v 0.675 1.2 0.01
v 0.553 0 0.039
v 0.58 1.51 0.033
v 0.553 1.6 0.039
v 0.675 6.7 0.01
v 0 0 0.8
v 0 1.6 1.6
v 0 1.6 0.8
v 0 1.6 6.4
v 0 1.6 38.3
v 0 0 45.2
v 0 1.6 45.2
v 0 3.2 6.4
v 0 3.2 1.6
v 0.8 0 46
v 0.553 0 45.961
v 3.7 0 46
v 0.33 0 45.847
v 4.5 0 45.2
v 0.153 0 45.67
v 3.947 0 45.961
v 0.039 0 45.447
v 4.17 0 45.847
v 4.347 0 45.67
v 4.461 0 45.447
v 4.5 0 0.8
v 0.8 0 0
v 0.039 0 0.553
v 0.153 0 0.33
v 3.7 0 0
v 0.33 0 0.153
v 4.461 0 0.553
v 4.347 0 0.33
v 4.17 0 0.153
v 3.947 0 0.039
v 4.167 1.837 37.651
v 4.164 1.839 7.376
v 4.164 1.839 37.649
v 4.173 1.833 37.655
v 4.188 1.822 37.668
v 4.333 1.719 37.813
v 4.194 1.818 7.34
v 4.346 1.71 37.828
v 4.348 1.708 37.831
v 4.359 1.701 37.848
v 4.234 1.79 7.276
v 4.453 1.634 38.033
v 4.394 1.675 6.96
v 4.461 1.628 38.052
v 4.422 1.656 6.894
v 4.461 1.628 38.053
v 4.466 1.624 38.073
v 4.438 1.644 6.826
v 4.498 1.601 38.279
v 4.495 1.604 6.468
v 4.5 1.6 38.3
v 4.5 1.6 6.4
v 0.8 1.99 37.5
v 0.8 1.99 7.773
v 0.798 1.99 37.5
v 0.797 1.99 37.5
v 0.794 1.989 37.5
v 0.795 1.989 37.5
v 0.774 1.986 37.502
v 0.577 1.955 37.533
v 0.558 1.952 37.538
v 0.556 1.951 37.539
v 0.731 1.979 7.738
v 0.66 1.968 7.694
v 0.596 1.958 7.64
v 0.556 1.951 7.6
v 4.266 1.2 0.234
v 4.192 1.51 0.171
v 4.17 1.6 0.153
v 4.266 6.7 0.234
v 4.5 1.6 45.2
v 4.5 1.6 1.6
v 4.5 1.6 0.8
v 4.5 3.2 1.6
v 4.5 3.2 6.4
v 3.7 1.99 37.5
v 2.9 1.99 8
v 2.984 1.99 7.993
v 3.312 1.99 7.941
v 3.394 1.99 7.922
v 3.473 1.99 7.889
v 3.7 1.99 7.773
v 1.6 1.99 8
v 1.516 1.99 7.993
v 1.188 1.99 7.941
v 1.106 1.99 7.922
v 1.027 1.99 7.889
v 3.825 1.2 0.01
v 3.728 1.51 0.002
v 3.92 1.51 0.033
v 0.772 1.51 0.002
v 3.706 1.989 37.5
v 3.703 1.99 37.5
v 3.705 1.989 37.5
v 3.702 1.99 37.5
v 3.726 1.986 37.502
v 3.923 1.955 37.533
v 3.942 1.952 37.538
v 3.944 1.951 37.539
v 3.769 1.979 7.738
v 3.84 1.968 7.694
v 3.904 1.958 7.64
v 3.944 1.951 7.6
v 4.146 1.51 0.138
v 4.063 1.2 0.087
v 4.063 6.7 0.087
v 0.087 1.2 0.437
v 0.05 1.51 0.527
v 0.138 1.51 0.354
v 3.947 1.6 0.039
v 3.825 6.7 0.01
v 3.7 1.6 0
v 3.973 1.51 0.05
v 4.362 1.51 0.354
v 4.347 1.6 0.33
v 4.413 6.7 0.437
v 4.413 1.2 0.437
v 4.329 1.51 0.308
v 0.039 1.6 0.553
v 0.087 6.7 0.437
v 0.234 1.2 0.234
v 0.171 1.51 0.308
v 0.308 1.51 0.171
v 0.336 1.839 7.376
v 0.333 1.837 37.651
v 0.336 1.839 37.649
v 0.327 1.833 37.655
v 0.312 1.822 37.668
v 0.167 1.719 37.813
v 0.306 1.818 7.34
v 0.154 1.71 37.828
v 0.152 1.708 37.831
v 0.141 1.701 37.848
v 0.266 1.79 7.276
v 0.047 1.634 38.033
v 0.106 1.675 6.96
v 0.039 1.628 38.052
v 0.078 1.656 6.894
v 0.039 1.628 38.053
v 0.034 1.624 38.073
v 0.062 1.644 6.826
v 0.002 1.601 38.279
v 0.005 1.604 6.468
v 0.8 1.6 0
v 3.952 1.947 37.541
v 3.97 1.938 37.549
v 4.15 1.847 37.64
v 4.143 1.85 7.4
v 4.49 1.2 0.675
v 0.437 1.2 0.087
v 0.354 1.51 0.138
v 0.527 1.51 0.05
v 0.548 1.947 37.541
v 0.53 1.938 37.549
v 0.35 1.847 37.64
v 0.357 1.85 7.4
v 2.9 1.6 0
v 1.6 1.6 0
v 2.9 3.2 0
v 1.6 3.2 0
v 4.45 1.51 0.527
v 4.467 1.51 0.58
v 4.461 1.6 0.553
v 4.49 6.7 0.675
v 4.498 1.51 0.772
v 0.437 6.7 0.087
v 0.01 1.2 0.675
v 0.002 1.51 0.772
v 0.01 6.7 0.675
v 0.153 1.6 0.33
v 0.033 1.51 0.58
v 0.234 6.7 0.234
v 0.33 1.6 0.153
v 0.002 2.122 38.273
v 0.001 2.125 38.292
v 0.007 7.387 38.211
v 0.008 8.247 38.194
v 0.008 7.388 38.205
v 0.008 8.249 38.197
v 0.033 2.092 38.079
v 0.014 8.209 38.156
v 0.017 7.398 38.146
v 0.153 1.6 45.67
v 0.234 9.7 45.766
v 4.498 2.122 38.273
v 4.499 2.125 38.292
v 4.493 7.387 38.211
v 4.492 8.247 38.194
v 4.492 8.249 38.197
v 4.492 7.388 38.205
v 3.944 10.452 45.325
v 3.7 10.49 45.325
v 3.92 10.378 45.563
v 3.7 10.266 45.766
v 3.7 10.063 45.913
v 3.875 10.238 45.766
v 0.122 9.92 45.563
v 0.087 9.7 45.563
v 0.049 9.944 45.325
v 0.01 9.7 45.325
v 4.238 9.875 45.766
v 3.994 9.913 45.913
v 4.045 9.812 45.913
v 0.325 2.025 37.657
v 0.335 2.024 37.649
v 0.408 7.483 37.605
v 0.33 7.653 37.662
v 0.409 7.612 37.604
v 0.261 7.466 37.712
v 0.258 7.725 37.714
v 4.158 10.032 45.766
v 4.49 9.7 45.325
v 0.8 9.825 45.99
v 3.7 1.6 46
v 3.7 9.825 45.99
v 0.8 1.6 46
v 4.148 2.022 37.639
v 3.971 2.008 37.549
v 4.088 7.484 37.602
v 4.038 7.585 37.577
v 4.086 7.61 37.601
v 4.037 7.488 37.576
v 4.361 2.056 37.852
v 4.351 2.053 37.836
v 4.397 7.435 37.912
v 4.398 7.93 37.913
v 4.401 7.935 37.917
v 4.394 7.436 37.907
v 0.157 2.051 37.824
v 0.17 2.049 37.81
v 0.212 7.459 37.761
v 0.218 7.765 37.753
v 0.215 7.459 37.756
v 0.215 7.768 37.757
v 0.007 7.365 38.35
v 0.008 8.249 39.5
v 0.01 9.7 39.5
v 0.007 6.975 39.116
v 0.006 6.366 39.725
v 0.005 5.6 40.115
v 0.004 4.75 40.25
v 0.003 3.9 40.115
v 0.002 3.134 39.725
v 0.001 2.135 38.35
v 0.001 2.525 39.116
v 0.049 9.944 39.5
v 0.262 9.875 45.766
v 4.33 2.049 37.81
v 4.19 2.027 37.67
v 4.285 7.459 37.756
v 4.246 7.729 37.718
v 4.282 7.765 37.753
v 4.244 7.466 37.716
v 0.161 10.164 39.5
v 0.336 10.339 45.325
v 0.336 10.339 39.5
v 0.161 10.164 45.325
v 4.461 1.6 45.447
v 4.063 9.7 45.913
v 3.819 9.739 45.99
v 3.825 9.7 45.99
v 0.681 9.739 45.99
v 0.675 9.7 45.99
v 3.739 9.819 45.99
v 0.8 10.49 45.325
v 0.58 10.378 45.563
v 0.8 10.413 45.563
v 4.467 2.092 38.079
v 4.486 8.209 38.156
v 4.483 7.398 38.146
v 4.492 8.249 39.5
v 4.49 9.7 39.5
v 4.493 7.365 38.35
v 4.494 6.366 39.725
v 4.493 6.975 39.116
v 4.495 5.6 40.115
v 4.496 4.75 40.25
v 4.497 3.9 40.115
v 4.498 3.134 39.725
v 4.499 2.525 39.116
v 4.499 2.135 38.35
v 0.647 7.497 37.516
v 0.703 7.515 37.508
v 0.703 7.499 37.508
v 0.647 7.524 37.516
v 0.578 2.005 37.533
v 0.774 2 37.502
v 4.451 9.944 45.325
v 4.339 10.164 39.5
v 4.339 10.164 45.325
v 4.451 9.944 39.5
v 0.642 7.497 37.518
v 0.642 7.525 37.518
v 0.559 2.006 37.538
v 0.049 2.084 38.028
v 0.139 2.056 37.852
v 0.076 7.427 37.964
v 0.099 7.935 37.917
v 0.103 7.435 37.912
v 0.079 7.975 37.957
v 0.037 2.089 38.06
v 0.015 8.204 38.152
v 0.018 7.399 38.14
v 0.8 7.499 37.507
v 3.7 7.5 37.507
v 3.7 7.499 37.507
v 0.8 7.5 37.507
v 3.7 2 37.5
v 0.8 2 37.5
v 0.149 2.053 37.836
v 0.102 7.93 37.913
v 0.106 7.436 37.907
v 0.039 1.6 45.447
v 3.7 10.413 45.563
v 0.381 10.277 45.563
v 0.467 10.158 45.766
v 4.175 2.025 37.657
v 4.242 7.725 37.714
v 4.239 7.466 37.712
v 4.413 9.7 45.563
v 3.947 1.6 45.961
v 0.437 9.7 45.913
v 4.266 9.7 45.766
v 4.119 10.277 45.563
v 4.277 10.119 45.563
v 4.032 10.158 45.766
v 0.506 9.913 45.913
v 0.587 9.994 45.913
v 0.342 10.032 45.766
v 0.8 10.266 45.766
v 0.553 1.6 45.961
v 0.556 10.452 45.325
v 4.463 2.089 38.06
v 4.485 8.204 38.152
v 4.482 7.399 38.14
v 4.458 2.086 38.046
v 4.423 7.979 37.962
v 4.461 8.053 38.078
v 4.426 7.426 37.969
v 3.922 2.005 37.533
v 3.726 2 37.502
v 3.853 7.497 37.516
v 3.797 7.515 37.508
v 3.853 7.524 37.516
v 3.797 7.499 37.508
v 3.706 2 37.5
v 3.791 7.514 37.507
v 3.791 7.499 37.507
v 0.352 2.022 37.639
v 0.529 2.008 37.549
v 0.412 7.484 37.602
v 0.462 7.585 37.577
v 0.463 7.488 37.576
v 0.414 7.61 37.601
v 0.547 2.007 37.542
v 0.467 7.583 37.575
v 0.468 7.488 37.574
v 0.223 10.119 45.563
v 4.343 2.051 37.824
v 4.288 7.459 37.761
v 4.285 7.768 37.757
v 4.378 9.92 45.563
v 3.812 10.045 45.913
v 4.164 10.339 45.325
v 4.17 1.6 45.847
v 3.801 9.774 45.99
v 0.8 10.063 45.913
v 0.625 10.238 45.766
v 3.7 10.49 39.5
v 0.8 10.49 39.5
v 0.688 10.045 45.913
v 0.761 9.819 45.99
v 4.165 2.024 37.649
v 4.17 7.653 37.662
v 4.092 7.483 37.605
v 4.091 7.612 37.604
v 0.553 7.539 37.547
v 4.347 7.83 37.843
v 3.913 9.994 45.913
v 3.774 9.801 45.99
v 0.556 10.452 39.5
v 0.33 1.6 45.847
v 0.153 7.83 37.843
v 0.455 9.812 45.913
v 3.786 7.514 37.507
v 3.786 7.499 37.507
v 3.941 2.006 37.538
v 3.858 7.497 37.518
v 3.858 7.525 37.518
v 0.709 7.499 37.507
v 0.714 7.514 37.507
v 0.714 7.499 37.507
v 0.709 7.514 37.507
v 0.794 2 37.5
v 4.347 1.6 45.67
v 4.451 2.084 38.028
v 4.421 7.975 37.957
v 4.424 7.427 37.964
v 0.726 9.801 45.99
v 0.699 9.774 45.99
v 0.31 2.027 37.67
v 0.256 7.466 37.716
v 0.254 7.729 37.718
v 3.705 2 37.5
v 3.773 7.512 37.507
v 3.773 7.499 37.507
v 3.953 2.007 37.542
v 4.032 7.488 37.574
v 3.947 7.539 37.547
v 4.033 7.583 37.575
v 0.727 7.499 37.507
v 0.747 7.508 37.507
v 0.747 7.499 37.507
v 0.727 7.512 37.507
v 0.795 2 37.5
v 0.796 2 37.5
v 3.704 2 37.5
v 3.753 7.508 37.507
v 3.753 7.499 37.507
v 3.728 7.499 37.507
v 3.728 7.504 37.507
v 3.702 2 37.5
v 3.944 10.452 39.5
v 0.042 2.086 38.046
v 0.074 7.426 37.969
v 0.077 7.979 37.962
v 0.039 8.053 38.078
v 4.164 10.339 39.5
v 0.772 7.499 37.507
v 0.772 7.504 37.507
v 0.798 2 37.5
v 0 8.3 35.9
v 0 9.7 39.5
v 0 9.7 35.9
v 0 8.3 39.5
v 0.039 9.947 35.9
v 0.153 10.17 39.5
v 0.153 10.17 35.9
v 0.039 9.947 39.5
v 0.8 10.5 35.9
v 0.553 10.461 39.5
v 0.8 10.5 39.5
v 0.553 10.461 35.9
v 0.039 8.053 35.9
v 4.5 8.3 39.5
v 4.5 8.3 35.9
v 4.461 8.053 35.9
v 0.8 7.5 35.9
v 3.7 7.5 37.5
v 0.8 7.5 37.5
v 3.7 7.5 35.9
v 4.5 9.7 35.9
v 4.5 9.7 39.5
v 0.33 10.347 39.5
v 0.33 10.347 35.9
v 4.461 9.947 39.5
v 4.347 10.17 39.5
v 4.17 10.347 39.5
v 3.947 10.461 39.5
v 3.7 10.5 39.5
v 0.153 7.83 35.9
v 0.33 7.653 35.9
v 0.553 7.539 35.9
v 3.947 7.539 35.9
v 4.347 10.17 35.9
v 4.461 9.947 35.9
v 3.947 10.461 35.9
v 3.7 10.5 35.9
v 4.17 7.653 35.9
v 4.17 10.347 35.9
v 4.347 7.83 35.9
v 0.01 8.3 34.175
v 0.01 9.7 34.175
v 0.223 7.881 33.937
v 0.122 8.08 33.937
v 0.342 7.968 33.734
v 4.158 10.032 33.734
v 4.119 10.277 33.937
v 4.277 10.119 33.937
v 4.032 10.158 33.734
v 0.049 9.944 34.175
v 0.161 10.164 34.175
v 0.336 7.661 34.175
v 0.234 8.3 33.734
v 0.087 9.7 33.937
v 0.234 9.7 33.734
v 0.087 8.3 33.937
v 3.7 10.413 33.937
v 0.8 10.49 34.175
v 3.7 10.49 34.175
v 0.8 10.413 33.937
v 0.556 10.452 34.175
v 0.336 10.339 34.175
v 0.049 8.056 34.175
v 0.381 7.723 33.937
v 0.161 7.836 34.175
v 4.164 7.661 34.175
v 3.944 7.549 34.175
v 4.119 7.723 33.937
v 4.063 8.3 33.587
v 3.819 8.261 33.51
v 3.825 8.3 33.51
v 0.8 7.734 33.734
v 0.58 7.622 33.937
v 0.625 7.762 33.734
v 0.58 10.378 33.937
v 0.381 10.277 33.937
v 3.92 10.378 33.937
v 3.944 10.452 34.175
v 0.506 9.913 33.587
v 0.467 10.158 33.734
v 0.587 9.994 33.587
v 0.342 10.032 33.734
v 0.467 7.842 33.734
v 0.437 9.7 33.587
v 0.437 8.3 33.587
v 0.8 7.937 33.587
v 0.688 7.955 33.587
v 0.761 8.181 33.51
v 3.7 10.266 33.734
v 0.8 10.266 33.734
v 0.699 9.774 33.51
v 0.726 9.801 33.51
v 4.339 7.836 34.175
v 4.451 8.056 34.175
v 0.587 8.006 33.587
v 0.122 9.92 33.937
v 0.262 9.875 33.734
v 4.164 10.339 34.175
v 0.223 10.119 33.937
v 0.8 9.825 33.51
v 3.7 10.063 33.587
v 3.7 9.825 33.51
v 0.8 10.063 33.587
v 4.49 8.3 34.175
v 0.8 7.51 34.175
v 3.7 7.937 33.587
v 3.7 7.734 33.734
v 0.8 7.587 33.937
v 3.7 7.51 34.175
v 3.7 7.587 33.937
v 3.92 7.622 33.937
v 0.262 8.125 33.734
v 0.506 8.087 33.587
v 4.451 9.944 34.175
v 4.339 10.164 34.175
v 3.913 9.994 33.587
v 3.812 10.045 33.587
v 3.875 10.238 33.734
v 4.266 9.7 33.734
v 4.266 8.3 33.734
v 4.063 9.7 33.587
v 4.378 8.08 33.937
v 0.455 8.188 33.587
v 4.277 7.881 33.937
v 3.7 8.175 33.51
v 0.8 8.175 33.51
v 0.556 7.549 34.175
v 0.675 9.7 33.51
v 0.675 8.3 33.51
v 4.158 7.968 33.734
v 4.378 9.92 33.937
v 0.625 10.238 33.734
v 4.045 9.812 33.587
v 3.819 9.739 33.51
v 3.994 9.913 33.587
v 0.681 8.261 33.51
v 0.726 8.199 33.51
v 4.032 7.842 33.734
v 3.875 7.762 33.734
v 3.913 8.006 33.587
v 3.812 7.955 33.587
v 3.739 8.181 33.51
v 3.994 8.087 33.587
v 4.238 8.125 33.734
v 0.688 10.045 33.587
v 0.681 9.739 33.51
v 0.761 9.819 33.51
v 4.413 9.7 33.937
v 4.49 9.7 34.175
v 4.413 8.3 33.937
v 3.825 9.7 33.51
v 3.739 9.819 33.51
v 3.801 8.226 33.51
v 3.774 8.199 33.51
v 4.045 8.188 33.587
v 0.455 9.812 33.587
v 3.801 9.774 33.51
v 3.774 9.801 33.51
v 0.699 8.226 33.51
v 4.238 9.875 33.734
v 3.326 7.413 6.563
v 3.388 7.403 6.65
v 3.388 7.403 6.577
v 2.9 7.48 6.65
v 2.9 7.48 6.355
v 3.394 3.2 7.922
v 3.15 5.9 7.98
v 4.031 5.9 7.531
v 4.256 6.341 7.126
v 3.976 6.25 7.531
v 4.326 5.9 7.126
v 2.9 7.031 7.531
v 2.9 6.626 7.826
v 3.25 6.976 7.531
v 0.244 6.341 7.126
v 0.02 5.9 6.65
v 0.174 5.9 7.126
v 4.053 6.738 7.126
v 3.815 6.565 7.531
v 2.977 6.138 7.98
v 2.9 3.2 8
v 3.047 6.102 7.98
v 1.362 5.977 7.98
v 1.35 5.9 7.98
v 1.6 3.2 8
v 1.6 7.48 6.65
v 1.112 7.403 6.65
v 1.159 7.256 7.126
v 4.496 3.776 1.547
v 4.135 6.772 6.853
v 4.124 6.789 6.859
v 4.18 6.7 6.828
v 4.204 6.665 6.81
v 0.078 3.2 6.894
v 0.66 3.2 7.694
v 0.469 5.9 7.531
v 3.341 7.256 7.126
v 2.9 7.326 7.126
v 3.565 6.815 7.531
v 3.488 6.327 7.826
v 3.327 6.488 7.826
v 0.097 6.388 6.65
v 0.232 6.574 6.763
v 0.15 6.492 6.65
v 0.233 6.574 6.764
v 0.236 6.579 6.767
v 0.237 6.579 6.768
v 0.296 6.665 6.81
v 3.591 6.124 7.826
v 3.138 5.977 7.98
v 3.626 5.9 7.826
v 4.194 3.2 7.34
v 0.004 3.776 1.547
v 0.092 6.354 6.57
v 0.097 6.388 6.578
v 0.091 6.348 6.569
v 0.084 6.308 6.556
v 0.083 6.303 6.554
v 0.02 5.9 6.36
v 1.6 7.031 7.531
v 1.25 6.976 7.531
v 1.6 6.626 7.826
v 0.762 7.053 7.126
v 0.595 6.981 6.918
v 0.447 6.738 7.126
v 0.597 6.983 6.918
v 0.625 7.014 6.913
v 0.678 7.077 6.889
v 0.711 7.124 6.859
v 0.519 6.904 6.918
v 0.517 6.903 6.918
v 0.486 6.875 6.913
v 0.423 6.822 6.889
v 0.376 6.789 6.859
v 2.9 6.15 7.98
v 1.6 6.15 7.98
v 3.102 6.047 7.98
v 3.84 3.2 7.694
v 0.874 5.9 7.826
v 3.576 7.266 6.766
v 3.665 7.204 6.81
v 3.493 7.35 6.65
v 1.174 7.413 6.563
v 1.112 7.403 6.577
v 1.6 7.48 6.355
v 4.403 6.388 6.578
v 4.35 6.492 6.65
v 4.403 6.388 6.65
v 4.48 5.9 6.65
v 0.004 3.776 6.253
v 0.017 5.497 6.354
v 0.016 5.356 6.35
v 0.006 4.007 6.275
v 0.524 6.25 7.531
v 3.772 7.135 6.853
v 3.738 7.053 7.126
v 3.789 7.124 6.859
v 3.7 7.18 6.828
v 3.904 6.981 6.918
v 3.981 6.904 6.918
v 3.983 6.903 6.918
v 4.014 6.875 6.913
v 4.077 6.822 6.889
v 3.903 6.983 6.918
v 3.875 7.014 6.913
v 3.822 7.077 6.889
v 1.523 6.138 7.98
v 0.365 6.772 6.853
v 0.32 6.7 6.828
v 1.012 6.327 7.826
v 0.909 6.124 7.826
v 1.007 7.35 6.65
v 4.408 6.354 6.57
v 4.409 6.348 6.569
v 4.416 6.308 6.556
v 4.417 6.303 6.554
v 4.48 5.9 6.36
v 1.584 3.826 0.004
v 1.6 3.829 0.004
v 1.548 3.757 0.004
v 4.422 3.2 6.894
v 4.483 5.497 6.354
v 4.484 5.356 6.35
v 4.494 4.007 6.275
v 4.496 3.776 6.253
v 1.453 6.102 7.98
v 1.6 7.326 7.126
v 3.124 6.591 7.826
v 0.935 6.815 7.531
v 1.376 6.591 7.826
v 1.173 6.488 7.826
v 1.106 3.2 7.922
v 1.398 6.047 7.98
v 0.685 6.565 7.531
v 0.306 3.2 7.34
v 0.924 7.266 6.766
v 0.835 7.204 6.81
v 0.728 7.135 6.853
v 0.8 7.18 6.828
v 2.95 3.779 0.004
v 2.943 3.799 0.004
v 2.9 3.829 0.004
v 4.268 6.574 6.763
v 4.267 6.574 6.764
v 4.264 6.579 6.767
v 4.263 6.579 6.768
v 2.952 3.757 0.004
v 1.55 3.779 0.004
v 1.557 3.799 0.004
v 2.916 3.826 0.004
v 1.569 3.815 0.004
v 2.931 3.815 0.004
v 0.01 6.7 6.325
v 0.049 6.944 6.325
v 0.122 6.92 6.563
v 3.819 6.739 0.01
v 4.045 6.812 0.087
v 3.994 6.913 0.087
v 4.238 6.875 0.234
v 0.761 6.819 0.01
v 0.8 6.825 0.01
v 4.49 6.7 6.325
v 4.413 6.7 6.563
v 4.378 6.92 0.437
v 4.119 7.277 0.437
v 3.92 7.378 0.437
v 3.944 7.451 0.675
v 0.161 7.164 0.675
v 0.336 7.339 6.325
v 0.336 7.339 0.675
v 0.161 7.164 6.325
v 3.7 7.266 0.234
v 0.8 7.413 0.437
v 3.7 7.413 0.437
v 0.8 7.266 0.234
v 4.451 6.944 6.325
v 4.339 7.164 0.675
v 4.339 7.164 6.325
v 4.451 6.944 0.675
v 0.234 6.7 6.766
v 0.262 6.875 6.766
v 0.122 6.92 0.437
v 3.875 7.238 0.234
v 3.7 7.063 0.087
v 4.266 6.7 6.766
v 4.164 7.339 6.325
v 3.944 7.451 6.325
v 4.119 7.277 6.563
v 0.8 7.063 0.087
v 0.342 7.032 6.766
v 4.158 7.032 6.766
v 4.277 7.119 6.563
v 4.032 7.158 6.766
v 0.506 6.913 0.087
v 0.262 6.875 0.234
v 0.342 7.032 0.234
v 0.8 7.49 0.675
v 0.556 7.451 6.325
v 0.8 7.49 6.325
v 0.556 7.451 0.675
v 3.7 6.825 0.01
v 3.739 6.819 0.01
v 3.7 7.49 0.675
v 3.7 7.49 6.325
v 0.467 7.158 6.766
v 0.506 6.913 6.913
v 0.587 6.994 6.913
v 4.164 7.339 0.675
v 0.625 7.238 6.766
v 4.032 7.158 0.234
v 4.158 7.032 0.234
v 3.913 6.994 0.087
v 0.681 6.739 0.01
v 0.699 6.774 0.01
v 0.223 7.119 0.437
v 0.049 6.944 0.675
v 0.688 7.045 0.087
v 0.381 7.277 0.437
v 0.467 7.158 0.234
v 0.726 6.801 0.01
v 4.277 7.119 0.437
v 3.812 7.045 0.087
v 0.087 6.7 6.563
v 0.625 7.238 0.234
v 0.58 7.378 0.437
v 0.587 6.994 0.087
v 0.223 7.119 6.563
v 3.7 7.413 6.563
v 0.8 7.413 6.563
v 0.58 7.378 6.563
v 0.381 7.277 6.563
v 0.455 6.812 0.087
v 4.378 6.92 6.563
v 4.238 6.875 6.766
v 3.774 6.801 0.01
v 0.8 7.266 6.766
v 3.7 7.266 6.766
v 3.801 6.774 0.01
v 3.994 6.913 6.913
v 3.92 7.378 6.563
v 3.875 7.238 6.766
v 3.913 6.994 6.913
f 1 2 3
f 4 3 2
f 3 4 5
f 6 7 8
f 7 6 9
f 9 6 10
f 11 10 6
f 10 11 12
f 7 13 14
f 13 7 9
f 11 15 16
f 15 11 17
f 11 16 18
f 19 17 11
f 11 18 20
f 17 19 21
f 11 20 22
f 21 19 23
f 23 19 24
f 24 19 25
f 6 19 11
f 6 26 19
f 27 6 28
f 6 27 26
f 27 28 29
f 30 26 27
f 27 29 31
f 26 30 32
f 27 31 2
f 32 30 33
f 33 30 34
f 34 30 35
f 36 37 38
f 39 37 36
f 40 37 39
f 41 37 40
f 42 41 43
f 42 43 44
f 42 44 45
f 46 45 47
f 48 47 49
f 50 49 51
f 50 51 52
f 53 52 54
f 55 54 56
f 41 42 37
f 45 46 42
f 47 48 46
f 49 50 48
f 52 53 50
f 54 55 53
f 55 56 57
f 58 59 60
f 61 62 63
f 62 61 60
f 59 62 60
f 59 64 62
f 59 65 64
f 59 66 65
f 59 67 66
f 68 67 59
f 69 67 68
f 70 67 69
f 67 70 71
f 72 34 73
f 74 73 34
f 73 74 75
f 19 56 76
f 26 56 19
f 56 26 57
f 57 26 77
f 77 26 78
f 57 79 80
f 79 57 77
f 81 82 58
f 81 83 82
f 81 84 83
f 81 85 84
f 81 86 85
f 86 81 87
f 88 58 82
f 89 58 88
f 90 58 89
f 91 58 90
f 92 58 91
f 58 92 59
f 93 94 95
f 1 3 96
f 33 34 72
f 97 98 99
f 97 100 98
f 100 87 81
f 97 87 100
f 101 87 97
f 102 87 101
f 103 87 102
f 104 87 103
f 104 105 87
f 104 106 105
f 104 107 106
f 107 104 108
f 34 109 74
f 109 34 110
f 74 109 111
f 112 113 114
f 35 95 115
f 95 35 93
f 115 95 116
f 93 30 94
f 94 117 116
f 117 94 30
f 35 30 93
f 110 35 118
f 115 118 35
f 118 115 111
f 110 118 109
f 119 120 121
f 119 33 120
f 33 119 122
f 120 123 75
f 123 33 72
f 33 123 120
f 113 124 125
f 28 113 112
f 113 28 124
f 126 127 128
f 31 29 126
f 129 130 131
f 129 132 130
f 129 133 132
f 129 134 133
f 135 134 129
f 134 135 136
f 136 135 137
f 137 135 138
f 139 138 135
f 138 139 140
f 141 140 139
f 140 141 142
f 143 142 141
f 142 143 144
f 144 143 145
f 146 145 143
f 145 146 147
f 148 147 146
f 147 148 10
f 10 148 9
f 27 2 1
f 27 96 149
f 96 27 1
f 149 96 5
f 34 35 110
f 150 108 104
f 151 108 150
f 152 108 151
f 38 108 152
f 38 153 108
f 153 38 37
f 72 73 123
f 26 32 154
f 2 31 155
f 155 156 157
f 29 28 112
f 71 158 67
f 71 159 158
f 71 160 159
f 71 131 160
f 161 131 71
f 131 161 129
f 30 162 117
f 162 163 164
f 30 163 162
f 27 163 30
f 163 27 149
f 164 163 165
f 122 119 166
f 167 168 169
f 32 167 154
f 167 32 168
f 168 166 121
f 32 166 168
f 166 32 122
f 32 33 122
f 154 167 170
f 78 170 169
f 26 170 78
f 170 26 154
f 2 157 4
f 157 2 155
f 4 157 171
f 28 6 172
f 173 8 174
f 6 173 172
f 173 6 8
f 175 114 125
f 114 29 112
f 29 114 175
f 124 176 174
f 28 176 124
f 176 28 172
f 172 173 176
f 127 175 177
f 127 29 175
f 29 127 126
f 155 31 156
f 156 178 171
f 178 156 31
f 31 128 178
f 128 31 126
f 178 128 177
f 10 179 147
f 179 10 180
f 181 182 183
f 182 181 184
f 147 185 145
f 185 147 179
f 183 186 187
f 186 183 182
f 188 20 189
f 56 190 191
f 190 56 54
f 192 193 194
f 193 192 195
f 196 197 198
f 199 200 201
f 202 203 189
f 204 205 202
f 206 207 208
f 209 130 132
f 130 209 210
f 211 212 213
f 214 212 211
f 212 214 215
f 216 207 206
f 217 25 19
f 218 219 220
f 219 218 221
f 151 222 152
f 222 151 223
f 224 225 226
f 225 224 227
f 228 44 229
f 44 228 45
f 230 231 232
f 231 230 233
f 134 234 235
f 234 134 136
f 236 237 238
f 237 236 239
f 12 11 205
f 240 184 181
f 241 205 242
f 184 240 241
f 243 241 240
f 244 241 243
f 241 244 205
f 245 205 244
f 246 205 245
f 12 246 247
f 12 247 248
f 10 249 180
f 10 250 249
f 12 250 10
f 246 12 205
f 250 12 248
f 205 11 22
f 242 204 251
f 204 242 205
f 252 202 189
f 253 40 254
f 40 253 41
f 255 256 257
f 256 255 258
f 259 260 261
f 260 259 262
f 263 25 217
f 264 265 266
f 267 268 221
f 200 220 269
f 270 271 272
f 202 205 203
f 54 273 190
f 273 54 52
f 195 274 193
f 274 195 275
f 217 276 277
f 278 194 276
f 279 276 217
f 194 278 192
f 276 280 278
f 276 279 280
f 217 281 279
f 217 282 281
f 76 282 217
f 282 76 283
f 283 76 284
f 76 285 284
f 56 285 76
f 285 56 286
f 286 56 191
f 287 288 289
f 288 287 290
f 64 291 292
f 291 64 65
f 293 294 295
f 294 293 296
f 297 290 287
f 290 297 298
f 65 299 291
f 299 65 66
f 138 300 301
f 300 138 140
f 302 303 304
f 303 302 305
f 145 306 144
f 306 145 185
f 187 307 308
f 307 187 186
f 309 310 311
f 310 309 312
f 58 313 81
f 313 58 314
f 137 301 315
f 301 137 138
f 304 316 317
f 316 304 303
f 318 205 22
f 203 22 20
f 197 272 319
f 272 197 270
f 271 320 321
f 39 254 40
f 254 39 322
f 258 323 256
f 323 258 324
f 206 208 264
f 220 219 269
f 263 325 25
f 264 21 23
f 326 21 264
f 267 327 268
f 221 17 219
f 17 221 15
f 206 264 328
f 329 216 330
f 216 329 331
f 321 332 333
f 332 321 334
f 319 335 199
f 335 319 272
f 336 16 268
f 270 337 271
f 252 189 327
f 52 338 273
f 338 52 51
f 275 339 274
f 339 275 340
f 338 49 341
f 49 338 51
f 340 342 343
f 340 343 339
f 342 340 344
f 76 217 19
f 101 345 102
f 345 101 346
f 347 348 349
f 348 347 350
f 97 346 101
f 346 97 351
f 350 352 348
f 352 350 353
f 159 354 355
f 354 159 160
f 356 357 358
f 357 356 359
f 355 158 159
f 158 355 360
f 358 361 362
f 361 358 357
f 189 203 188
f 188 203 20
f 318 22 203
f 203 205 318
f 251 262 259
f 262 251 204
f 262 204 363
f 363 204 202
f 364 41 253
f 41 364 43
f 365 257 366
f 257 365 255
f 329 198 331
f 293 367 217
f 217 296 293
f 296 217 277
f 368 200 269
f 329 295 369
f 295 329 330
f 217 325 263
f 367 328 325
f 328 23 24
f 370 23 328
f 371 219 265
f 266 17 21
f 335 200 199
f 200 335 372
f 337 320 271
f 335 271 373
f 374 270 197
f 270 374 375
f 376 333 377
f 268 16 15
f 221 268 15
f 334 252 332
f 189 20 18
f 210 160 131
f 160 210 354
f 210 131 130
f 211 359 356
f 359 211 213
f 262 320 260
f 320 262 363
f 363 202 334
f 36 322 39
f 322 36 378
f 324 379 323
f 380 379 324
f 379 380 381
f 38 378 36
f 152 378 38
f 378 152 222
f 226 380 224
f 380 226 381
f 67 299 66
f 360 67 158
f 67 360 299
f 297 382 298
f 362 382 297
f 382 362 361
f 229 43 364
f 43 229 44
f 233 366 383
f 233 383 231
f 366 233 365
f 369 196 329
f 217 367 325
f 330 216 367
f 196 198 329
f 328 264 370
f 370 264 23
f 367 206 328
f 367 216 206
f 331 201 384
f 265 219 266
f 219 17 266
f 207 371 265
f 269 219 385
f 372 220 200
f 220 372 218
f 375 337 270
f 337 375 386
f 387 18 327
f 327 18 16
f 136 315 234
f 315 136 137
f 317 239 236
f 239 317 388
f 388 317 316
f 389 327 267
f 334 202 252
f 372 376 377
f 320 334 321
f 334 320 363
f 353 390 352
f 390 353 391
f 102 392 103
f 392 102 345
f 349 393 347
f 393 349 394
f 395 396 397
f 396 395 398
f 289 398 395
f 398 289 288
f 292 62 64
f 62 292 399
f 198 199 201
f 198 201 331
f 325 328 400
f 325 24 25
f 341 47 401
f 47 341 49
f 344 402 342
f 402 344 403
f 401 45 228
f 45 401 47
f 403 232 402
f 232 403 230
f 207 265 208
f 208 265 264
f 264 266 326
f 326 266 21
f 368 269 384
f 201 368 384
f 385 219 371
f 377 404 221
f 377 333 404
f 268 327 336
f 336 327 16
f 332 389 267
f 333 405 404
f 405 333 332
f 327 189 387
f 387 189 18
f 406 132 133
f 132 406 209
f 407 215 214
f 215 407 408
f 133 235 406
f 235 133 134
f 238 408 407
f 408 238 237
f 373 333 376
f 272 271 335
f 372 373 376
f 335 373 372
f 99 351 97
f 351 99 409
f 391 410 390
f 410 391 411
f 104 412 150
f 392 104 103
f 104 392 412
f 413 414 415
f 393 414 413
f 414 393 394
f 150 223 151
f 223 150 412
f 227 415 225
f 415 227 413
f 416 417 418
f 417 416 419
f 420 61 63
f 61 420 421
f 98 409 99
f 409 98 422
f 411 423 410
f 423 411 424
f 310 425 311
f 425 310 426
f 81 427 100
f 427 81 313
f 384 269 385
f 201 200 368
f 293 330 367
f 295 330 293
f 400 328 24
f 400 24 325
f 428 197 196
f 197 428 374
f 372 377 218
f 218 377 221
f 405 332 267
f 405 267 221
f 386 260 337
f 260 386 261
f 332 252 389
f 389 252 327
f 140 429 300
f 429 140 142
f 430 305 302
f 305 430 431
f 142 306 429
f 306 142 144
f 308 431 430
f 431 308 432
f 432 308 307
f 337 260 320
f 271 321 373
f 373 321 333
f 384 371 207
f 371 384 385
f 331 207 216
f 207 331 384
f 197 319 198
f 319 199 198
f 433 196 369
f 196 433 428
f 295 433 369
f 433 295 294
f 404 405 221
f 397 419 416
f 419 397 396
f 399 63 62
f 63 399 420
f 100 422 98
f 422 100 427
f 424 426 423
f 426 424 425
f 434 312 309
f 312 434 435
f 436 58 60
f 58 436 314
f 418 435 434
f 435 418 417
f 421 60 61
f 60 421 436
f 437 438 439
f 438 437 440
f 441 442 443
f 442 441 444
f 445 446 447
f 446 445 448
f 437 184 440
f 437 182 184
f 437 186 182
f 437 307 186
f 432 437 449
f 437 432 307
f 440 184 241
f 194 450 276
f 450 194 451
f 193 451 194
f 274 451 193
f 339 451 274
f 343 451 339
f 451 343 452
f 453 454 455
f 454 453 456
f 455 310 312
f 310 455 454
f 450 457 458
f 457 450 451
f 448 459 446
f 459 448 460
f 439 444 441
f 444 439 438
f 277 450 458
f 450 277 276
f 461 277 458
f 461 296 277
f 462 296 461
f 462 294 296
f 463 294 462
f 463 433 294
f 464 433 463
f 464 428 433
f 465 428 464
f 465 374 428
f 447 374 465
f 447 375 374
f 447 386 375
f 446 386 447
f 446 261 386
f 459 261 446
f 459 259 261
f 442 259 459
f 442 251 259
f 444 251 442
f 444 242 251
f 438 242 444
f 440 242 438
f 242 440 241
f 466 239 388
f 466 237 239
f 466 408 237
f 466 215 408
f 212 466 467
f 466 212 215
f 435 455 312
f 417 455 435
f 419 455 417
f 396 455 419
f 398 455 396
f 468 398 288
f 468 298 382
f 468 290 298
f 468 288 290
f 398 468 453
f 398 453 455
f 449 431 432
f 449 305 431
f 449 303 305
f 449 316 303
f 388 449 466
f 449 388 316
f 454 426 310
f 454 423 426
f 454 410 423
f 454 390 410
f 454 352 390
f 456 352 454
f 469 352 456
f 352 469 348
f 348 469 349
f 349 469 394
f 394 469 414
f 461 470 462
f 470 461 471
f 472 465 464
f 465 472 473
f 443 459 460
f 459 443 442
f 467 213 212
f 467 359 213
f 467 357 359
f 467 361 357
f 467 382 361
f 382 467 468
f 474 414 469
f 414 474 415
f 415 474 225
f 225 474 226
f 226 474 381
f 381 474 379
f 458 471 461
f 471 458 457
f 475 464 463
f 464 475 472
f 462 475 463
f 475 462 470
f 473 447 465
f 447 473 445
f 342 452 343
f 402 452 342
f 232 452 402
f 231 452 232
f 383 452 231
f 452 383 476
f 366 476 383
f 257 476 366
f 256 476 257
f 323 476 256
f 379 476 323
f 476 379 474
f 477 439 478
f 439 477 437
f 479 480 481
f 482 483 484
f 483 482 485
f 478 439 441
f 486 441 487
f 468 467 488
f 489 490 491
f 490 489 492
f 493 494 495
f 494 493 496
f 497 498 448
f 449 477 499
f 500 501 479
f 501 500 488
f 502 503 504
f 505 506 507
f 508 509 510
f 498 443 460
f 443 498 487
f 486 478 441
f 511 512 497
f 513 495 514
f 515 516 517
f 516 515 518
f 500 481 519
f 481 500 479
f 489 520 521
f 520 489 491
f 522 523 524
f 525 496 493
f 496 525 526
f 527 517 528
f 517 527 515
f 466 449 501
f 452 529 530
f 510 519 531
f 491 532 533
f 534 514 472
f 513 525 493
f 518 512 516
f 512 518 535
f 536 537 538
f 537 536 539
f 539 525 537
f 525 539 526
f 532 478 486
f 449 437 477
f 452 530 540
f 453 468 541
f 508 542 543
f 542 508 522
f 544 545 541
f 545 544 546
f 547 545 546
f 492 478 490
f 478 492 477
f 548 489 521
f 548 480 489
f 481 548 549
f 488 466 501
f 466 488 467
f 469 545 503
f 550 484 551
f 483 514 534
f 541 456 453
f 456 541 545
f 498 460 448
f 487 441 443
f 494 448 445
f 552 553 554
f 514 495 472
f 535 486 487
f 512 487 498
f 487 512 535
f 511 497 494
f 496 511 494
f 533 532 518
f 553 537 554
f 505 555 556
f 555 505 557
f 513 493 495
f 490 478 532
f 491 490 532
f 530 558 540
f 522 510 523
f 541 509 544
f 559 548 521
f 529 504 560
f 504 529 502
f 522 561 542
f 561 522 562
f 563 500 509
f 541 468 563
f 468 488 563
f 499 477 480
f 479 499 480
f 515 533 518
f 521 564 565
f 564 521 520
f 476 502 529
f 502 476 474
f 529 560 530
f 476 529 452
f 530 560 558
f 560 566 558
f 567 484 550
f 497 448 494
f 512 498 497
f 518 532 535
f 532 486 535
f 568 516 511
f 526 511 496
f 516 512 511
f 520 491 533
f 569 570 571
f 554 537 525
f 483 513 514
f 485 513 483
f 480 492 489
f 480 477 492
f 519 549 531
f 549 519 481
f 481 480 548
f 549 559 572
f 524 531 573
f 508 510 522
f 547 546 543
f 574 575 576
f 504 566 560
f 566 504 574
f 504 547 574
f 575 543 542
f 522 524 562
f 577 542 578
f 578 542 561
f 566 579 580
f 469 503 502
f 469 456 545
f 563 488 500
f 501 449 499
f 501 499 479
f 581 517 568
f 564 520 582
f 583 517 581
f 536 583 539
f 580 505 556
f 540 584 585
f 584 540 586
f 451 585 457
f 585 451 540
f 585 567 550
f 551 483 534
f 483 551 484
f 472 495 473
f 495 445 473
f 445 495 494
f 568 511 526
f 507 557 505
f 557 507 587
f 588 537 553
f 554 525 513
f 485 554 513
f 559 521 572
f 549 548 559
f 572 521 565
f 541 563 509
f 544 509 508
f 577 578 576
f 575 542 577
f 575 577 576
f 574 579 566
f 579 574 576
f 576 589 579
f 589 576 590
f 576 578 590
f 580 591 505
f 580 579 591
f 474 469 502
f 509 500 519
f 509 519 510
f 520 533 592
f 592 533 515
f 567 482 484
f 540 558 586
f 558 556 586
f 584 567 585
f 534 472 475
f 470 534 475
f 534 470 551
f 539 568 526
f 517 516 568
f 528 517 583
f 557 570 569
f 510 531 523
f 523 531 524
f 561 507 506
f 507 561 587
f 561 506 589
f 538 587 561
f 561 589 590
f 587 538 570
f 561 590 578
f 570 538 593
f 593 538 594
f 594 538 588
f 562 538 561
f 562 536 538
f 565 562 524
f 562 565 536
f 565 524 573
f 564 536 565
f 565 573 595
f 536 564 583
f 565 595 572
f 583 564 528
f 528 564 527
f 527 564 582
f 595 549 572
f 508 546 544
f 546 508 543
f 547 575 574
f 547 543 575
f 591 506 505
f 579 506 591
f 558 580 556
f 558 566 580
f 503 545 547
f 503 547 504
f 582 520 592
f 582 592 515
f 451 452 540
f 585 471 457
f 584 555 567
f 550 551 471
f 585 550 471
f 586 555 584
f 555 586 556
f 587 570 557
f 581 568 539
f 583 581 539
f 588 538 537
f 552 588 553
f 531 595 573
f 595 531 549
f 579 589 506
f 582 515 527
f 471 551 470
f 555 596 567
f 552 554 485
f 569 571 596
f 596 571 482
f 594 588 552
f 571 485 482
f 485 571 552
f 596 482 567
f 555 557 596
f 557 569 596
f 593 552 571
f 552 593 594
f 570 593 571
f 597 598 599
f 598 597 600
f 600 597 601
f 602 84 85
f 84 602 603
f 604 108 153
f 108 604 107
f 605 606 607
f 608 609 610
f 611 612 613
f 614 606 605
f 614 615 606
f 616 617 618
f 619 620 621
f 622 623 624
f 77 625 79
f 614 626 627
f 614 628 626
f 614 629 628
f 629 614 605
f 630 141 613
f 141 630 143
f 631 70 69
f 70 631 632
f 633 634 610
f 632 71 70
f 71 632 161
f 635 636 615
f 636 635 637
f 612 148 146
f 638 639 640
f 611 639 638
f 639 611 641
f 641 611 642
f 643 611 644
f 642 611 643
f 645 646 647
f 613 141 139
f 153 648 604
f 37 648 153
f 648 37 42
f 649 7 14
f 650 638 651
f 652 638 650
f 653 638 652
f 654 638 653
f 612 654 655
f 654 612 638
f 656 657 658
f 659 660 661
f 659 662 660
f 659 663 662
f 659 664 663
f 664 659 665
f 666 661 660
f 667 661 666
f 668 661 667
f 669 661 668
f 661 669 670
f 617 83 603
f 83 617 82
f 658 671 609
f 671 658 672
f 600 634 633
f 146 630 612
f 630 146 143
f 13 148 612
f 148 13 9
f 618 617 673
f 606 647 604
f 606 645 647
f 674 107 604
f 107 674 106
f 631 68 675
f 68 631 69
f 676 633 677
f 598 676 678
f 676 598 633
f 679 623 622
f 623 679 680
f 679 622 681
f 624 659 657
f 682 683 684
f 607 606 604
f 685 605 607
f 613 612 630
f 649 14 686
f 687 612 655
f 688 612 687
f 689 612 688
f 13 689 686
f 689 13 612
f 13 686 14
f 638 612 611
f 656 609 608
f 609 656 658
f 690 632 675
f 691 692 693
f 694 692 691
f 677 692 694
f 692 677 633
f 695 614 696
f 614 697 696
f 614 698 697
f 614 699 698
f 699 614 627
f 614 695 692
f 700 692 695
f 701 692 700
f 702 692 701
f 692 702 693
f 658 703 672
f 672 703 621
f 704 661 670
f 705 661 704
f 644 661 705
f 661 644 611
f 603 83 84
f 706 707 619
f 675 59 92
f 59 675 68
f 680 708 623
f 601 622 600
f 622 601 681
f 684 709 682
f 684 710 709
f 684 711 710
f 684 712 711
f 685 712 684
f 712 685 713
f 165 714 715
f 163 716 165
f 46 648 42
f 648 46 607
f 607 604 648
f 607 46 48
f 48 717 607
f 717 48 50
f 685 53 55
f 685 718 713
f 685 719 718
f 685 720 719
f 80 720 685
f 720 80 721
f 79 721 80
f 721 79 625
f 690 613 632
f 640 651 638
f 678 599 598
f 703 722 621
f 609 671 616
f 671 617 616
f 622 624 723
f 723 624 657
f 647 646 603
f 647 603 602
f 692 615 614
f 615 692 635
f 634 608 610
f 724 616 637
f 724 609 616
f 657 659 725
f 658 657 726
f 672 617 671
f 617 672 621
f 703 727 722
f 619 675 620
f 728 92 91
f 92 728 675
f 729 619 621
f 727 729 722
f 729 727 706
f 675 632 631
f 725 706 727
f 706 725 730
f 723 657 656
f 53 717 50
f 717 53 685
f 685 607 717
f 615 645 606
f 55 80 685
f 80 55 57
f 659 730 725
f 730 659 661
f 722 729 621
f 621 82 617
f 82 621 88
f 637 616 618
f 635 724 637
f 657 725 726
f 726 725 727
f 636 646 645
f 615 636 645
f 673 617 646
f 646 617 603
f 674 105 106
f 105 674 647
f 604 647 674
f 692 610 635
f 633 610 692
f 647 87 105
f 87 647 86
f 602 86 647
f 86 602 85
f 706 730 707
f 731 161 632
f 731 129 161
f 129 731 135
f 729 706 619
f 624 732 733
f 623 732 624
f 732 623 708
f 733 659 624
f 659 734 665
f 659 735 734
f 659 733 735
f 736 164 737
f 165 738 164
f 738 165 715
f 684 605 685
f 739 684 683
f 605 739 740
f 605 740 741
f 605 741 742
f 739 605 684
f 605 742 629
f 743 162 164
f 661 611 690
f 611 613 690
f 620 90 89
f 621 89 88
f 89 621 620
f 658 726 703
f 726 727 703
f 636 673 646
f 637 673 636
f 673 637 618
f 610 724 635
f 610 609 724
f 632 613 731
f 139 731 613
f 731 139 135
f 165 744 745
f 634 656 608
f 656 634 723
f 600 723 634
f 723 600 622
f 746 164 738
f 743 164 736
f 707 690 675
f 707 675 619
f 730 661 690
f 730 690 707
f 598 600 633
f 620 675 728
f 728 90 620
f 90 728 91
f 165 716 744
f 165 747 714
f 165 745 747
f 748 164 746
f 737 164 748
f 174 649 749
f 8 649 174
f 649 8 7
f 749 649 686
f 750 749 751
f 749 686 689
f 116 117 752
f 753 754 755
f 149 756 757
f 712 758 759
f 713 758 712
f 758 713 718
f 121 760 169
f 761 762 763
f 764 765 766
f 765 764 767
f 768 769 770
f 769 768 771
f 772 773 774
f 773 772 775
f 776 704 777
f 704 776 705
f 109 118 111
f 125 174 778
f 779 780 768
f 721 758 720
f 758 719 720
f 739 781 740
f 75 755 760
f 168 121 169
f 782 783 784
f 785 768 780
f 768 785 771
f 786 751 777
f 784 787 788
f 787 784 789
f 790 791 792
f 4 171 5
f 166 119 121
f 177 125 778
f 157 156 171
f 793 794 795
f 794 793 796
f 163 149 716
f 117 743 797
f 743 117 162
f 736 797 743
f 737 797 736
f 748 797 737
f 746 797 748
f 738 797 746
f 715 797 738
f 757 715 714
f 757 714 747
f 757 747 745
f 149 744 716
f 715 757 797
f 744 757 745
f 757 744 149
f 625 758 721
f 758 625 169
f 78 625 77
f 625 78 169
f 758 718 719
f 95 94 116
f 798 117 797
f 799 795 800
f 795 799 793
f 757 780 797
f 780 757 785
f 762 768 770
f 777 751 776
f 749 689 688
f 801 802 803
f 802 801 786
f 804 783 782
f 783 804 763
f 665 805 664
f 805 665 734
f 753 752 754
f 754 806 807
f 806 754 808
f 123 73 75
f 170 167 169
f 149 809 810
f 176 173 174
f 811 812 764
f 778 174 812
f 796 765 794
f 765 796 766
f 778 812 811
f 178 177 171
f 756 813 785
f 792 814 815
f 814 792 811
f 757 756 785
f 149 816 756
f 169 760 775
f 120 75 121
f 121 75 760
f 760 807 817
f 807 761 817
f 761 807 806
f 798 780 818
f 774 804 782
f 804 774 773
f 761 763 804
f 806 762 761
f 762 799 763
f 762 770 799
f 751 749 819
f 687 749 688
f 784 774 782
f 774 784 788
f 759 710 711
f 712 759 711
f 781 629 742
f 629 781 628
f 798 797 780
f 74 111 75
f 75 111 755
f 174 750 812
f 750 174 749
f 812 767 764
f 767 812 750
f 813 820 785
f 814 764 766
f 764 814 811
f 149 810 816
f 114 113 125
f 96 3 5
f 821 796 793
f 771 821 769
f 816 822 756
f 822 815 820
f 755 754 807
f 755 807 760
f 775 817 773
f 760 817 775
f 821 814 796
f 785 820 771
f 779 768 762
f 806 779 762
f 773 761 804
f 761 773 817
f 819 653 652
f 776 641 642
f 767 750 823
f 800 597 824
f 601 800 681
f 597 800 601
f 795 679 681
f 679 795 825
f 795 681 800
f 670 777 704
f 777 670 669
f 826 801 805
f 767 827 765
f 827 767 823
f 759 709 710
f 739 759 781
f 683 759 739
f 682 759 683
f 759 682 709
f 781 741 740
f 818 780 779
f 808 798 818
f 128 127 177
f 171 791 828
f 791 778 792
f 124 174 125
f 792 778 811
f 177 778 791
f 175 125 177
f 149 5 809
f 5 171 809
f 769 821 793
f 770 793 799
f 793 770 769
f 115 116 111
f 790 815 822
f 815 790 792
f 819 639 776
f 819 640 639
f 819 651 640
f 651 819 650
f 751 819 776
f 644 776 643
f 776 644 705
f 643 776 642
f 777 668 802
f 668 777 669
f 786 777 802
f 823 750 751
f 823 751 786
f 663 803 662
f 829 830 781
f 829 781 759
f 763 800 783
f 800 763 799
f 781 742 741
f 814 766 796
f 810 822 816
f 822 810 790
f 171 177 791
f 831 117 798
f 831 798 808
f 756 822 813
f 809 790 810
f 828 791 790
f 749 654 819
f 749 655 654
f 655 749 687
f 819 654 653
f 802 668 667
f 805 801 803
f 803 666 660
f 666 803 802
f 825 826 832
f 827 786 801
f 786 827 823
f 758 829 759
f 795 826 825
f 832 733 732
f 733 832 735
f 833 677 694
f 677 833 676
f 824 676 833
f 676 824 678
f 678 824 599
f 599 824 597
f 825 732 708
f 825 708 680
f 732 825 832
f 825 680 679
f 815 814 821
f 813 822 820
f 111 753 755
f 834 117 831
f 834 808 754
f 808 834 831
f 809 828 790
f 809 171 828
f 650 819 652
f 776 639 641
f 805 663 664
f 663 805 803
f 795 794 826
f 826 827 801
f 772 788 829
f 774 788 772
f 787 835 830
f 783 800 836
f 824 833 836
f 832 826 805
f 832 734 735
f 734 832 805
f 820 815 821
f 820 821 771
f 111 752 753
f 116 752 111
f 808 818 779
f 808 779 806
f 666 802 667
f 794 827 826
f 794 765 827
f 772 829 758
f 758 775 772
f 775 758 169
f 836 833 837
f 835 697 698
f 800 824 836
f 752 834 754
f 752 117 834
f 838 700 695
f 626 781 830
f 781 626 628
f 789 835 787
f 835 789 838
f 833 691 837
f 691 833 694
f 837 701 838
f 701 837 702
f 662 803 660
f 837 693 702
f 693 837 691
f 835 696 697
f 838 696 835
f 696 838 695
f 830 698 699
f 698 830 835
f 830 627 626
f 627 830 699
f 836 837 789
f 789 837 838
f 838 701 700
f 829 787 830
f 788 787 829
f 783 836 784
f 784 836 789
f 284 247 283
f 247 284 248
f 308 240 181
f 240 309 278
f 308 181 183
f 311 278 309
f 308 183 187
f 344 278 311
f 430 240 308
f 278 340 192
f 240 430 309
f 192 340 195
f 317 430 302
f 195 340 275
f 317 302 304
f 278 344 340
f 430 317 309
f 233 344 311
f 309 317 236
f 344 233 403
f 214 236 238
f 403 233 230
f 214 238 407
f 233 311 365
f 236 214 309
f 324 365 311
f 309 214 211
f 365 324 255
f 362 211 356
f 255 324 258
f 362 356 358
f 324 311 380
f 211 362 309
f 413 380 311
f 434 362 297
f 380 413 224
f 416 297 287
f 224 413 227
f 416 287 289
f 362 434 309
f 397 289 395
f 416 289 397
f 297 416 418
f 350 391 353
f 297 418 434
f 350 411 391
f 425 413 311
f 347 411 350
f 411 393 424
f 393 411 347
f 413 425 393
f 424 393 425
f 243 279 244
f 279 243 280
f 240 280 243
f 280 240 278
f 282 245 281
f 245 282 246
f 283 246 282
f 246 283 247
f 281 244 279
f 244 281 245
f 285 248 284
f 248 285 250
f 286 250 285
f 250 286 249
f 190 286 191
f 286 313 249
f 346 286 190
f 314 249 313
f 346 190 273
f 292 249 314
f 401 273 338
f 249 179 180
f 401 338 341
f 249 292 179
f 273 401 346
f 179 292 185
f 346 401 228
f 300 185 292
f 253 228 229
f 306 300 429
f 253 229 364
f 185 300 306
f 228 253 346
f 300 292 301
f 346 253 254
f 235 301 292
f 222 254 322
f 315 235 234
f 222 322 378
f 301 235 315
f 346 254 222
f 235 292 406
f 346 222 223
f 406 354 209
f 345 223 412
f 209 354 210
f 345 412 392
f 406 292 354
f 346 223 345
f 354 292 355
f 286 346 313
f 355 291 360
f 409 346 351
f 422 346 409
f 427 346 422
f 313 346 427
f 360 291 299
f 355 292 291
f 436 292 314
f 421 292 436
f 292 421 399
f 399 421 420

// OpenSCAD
// file: ../../../modules/scad/roundedcube.scad
// More information: https://danielupshaw.com/openscad-rounded-corners/


// Examples
// color("Yellow")
// roundedcube(3, true, 0.7, "xmin");

// translate(v = [1, 0, 2])
// color("Pink")
// roundedcube([4, 2, 2], false, 0.6, "zmax");

// translate(v = [-4, -1, 2])
// color("Lightblue")
// roundedcube(2, false);

// translate(v = [0, 0, 6])
// color("Orange")
// roundedcube([3, 2, 2], true, 0.2);

// translate(v = [2.5, -0.5, 5])
// color("Green")
// roundedcube([3, 2, 2], false, 0.4, "z");

// Set to 0.01 for higher definition curves (renders slower)
$fs = 0.15;

module roundedcube(size = [1, 1, 1], center = false, radius = 0.5, apply_to = "all") {
	// If single value, convert to [x, y, z] vector
	size = (size[0] == undef) ? [size, size, size] : size;

	translate_min = radius;
	translate_xmax = size[0] - radius;
	translate_ymax = size[1] - radius;
	translate_zmax = size[2] - radius;

	diameter = radius * 2;

	obj_translate = (center == false) ?
		[0, 0, 0] : [
			-(size[0] / 2),
			-(size[1] / 2),
			-(size[2] / 2)
		];

	translate(v = obj_translate) {
		hull() {
			for (translate_x = [translate_min, translate_xmax]) {
				x_at = (translate_x == translate_min) ? "min" : "max";
				for (translate_y = [translate_min, translate_ymax]) {
					y_at = (translate_y == translate_min) ? "min" : "max";
					for (translate_z = [translate_min, translate_zmax]) {
						z_at = (translate_z == translate_min) ? "min" : "max";

						translate(v = [translate_x, translate_y, translate_z])
						if (
							(apply_to == "all") ||
							(apply_to == "xmin" && x_at == "min") || (apply_to == "xmax" && x_at == "max") ||
							(apply_to == "ymin" && y_at == "min") || (apply_to == "ymax" && y_at == "max") ||
							(apply_to == "zmin" && z_at == "min") || (apply_to == "zmax" && z_at == "max")
						) {
							sphere(r = radius);
						} else {
							rotate = 
								(apply_to == "xmin" || apply_to == "xmax" || apply_to == "x") ? [0, 90, 0] : (
								(apply_to == "ymin" || apply_to == "ymax" || apply_to == "y") ? [90, 90, 0] :
								[0, 0, 0]
							);
							rotate(a = rotate)
							cylinder(h = diameter, r = radius, center = true);
						}
					}
				}
			}
		}
	}
}
// main file
$fn=20;

sh_height=43;
sh_width=4.5;
sh_hanger_spacing=5.5;
sh_material_size=2;
sh_short_tail=4;
sh_corner_radius = 0.8;

use <../../../modules/scad/roundedcube.scad>

module ikea_skadis_holder() {
    difference() {
        union() {
            
            //Vertical wall
            color("green")
            roundedcube(size = [sh_width,sh_material_size,sh_height], center = false, radius = sh_corner_radius, apply_to = "ymax");
            //cube([sh_width,sh_material_size,sh_height]);
            
            // Retainer
            color("blue")
            translate([0,0,sh_height-sh_hanger_spacing])
            roundedcube(size = [sh_width, sh_hanger_spacing + sh_material_size * 2 + 1, sh_hanger_spacing + 3], center = false, radius = sh_corner_radius, apply_to = "ymax");

            //Vertical wall connection (short)
            color("cyan")
            translate([0, sh_hanger_spacing + sh_material_size , sh_height - sh_hanger_spacing])
            roundedcube(size = [sh_width, sh_material_size + 1, 2], center = false, radius = sh_corner_radius, apply_to = "z");

            //Vertical wall (short)
            color("cyan")
            translate([0, sh_hanger_spacing + sh_material_size , sh_height - sh_short_tail - sh_hanger_spacing])
            //cube([sh_width,sh_material_size+1,sh_short_tail]);
            roundedcube(size = [sh_width, sh_material_size + 1, sh_short_tail], center = false, radius = sh_corner_radius, apply_to = "zmin");

            //Schnöpsel
            color("yellow")
            translate([0, sh_material_size - 2, 0])
            roundedcube(size = [sh_width, sh_hanger_spacing + 2, 8], center = false, radius = sh_corner_radius + 0.8, apply_to = "ymax");

            //Schnöpsel - Angleichen des unteren radius
            color("yellow")
            translate([0, sh_material_size - 2, 0])
            roundedcube(size = [sh_width, sh_hanger_spacing + 2, 7], center = false, radius = sh_corner_radius, apply_to = "ymax");

        }
        
        
    color("red")
    translate([-1,sh_material_size+sh_hanger_spacing/2,sh_height-sh_hanger_spacing])
    rotate([0,90,0])
    cylinder(sh_width+2, sh_hanger_spacing/2, sh_hanger_spacing/2);
        
    }
}
//color("Yellow")
ikea_skadis_holder();
